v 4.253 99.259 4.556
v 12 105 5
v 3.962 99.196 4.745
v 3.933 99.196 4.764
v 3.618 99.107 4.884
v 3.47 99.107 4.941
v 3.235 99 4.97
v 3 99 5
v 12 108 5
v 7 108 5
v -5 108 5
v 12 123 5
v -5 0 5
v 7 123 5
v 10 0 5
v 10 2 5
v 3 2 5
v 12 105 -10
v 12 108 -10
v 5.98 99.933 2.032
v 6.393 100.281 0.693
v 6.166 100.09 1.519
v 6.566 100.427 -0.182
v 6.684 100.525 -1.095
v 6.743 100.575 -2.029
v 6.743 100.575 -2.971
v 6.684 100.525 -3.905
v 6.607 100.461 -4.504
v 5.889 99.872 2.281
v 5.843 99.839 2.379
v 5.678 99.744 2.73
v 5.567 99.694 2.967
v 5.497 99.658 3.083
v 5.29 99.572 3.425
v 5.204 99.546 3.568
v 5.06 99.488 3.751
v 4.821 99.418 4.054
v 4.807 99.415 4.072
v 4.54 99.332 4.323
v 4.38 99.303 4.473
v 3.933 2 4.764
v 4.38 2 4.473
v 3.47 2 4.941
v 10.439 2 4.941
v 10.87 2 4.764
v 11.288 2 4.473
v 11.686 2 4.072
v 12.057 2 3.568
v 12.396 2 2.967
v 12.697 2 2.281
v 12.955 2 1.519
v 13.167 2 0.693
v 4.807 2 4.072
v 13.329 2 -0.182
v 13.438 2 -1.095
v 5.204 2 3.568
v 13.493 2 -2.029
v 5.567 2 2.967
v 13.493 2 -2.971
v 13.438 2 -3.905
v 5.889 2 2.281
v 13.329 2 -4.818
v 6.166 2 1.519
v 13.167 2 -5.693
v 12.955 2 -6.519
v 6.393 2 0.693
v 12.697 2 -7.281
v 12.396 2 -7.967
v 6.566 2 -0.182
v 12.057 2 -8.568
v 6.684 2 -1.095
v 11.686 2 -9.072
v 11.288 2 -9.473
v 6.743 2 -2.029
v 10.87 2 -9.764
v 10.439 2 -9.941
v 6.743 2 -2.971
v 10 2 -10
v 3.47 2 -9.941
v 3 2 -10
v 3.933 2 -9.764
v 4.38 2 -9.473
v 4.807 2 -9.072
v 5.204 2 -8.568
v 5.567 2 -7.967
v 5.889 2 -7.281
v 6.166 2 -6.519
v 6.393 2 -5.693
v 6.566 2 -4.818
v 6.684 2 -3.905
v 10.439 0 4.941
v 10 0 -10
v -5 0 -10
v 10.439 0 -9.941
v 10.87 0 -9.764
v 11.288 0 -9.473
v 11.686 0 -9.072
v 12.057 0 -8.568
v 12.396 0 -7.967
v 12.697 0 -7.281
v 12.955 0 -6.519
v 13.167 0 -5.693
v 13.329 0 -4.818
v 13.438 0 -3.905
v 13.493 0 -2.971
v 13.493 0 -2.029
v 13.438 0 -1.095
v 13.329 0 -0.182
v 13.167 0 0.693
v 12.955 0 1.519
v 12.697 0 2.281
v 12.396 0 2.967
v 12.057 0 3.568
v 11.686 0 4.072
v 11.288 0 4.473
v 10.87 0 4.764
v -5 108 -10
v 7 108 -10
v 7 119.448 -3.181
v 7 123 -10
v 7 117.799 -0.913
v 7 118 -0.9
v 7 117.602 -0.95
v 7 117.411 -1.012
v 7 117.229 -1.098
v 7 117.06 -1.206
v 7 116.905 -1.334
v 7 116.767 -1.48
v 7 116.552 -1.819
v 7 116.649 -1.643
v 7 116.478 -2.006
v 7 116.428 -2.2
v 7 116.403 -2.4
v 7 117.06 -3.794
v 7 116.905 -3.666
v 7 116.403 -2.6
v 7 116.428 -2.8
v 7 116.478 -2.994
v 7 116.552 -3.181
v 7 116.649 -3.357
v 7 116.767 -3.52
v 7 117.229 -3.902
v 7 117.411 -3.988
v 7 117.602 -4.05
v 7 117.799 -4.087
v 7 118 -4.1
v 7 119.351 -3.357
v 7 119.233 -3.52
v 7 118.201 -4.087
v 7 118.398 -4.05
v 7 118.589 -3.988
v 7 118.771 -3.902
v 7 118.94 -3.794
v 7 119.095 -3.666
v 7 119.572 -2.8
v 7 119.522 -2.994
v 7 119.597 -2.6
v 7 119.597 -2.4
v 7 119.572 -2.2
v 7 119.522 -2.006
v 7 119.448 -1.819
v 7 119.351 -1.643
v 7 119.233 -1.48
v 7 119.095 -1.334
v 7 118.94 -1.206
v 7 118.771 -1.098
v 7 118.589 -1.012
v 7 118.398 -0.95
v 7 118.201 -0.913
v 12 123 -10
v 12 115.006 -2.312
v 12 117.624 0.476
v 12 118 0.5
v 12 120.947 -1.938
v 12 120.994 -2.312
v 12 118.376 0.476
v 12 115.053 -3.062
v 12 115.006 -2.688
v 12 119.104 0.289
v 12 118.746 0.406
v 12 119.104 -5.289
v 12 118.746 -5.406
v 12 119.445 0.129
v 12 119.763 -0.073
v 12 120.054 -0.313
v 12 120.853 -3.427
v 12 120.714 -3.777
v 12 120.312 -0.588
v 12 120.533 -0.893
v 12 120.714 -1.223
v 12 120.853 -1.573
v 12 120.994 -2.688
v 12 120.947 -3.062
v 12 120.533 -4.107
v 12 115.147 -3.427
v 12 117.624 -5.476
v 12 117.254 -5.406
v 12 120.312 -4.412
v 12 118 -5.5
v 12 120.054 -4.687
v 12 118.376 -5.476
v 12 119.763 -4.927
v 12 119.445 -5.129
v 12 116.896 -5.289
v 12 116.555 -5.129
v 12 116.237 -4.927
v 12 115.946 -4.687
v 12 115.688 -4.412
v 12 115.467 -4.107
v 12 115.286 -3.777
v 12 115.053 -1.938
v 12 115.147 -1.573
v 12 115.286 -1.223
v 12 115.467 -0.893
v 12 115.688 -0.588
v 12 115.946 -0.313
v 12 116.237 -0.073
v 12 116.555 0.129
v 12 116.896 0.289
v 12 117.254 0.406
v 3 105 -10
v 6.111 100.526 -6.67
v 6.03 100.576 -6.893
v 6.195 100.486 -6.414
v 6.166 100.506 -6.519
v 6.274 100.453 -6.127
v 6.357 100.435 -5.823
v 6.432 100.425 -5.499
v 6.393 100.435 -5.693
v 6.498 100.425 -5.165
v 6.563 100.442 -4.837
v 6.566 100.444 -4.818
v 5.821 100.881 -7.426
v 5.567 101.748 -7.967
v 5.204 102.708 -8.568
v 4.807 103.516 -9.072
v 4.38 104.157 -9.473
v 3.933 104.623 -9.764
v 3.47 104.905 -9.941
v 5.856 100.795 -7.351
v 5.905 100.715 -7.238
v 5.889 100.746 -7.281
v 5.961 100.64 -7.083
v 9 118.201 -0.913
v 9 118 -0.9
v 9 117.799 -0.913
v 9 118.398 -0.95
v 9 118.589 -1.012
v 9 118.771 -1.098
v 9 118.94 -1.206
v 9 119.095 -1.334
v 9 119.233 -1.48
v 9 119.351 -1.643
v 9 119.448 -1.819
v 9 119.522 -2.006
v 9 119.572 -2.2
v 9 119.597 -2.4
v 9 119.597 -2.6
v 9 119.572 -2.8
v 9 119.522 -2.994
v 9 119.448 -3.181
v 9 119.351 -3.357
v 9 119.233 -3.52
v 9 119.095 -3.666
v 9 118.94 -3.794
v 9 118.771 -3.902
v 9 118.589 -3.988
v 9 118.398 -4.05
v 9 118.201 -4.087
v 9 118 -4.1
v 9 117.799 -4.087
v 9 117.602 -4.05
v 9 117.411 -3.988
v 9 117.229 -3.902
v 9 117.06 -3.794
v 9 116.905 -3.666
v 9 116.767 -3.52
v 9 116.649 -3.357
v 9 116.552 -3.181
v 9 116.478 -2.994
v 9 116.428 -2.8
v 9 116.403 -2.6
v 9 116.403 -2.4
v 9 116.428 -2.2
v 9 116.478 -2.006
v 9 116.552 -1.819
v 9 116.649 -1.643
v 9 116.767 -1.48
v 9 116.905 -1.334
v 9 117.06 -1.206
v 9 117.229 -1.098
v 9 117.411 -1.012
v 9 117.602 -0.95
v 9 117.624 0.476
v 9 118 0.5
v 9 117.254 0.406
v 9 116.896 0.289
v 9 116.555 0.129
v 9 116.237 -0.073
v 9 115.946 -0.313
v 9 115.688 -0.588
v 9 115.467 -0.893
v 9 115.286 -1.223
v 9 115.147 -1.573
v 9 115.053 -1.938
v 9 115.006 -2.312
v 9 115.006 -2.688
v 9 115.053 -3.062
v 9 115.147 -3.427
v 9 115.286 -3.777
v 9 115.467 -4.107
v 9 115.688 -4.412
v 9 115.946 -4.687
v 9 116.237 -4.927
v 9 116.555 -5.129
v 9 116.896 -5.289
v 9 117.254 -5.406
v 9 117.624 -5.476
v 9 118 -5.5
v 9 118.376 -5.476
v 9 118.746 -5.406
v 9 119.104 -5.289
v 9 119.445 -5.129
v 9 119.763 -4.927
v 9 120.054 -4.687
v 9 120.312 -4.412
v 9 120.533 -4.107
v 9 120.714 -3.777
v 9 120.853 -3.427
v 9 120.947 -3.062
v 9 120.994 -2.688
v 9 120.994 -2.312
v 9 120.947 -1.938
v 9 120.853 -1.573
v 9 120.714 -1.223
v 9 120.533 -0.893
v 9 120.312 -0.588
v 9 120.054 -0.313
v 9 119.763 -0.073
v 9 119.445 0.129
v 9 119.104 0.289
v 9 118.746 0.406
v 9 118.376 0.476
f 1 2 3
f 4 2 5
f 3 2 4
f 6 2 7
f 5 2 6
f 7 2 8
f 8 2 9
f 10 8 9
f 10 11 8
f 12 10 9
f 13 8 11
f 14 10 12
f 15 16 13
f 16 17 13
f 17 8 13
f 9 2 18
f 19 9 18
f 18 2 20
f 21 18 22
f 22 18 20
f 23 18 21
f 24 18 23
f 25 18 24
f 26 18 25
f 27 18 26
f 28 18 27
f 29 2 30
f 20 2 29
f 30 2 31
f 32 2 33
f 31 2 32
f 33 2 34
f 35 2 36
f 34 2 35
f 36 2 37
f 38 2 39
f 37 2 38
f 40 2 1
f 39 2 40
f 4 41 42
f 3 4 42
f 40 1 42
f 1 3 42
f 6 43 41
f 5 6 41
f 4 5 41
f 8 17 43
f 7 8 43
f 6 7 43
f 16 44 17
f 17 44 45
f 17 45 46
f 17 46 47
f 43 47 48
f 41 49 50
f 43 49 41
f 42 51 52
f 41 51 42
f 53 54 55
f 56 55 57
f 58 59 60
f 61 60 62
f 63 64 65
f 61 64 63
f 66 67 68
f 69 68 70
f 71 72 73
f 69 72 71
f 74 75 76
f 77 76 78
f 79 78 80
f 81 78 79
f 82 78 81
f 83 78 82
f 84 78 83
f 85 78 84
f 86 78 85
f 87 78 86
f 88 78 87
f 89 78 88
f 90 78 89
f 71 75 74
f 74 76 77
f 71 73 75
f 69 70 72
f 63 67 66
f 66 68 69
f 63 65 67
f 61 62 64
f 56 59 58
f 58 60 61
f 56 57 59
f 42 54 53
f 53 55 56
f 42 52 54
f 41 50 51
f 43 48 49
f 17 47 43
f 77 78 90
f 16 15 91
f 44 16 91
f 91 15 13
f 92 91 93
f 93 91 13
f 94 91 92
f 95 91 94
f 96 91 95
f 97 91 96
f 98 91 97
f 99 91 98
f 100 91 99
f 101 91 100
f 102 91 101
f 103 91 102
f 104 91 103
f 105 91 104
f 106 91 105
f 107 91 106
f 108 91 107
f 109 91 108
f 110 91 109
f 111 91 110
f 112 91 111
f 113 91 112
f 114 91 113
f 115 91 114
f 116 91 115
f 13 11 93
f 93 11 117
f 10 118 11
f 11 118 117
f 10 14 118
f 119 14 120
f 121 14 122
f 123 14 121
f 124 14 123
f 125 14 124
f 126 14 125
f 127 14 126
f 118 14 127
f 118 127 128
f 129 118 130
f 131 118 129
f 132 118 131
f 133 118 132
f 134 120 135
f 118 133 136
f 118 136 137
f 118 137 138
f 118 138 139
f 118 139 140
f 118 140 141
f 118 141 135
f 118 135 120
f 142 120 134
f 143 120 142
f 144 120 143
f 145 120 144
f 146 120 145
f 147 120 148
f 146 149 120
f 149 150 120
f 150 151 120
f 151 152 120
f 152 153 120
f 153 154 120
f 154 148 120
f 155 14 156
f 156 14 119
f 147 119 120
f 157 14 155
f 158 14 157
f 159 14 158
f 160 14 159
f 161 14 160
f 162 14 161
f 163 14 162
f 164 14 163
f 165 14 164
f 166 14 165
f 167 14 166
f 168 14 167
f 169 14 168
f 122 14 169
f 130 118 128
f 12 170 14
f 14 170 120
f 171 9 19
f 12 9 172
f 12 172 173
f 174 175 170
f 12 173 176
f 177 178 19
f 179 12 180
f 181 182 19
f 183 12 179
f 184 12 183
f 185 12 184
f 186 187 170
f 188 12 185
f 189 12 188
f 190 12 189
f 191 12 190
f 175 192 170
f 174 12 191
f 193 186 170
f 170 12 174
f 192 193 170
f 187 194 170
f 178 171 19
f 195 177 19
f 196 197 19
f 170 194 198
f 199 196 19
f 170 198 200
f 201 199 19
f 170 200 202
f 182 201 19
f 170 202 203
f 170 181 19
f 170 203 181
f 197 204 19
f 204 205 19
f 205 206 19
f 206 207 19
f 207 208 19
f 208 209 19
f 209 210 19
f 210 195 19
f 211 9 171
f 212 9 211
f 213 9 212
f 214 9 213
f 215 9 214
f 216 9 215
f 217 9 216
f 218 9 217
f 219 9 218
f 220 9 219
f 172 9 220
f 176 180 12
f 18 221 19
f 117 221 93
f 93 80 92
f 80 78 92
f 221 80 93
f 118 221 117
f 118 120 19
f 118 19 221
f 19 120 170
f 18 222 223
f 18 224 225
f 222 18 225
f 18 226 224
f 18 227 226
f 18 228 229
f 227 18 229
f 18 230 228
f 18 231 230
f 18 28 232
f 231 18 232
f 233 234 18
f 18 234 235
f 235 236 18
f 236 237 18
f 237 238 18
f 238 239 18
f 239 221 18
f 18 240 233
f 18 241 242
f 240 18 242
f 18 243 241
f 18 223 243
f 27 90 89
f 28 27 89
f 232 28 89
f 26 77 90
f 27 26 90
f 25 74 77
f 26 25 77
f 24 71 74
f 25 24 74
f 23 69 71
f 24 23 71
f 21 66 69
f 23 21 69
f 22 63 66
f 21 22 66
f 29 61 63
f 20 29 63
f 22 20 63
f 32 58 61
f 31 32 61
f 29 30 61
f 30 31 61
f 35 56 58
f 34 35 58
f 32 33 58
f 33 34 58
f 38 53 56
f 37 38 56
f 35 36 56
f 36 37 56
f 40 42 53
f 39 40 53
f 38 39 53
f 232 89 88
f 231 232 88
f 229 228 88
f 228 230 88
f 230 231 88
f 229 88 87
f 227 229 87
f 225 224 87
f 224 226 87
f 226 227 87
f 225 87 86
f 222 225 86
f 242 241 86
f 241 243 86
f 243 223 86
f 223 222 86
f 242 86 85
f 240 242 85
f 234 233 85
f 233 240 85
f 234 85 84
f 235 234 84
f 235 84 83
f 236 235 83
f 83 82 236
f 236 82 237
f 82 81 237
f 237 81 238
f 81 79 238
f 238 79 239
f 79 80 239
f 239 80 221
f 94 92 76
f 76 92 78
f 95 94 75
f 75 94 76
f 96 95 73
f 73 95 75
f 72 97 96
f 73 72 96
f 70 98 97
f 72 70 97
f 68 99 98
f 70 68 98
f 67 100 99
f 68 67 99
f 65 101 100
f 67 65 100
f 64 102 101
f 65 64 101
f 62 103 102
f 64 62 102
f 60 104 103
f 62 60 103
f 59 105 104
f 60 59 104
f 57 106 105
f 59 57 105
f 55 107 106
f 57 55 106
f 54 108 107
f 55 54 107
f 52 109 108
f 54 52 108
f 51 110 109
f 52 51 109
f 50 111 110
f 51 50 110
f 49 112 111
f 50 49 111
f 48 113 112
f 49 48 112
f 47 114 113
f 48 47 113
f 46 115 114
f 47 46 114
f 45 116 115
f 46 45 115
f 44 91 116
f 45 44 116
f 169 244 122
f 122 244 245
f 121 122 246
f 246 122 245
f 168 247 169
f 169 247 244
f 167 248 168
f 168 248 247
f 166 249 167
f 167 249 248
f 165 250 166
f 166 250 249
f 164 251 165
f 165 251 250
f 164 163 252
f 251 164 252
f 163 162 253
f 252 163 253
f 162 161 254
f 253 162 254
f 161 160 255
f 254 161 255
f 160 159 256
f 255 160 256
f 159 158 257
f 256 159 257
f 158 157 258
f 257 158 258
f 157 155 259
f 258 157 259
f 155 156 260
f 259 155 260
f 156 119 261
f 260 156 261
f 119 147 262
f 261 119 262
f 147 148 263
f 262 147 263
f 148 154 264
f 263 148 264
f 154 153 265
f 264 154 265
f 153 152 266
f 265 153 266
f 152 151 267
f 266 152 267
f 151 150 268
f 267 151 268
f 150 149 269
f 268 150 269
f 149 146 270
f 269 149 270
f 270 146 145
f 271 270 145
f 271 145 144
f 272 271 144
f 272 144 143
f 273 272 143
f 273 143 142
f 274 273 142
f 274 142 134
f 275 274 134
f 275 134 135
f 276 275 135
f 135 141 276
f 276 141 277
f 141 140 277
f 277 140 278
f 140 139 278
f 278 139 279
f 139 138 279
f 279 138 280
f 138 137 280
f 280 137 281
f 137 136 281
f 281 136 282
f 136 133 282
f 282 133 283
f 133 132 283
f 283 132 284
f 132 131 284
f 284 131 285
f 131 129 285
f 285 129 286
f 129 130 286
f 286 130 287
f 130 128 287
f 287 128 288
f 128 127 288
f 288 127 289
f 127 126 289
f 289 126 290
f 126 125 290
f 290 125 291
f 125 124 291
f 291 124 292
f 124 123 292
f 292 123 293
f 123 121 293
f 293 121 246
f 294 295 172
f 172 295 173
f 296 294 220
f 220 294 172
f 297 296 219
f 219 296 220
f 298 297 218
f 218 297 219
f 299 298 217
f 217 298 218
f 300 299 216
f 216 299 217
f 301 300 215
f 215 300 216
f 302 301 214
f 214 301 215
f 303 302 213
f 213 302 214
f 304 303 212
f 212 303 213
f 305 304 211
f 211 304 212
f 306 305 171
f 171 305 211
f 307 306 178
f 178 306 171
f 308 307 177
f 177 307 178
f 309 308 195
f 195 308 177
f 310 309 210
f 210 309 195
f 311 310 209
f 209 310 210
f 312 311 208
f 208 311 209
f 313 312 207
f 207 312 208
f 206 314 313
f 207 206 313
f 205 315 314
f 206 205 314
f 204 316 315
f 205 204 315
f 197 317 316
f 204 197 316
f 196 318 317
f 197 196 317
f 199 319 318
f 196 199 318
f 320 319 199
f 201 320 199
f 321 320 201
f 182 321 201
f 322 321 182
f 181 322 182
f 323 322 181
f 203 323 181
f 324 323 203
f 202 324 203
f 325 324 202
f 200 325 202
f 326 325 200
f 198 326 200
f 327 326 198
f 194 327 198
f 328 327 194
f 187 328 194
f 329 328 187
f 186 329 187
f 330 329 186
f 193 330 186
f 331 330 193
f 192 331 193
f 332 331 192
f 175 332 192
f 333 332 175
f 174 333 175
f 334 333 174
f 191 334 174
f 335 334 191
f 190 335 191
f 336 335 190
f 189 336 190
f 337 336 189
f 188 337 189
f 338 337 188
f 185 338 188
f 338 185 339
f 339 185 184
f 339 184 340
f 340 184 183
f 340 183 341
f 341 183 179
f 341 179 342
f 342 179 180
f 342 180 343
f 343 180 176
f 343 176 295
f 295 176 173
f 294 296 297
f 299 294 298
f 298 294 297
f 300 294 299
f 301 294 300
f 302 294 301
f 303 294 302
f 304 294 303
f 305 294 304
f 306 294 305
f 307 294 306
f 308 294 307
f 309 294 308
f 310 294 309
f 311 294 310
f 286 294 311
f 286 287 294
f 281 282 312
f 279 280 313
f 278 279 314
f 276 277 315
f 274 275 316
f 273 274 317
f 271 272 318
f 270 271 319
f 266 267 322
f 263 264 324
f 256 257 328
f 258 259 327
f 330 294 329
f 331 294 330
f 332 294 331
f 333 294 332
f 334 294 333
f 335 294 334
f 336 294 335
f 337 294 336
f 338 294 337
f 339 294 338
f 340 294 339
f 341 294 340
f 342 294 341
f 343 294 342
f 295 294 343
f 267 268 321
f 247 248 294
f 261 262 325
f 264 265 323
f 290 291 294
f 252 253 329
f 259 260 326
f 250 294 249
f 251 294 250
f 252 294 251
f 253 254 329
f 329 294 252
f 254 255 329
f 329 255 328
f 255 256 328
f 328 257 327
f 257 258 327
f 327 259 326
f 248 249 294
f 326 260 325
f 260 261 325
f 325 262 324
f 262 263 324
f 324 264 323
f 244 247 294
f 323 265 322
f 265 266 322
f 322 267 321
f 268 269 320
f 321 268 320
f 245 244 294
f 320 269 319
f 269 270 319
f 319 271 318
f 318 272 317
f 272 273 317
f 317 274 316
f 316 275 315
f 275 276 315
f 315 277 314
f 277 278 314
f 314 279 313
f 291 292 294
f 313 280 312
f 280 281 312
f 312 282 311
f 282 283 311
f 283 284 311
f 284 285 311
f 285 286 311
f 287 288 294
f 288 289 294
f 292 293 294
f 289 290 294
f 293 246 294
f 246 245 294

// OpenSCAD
$fn=50;





module holder(height){

difference(){
	union(){
		hull () {
			translate([2.5,-3,0]) scale([1,0.5,1])	cylinder (height,7.5,7.5);
			translate([-5,0,0])cube([15,5,height]);
		}
		hull () {
			translate([2.5,-10,0]) 	scale([1.5,0.7,1])cylinder (2,5,5);
			translate([-5,0,0])cube([15,5,2]);
		}
	//top
	#hull(){
		translate([-5,-12,height]) cube ([15,17,3]);
		translate([0,0,height-8])	scale([1,0.5,1])	cylinder (5,5,5);
	}
	
	translate([-5,-7,height])rotate([90,0,0]) cube ([15,18,5]);



	}
	



#	translate([2.5,-2,height+3+10])rotate([90,0,0]) cylinder(10,1.6,1.6);
#	translate([2.5,-9,height+3+10])rotate([90,0,0]) cylinder(3,3,3);



	}


}



translate([0,0,0])rotate([270,90,0]) holder (105);
